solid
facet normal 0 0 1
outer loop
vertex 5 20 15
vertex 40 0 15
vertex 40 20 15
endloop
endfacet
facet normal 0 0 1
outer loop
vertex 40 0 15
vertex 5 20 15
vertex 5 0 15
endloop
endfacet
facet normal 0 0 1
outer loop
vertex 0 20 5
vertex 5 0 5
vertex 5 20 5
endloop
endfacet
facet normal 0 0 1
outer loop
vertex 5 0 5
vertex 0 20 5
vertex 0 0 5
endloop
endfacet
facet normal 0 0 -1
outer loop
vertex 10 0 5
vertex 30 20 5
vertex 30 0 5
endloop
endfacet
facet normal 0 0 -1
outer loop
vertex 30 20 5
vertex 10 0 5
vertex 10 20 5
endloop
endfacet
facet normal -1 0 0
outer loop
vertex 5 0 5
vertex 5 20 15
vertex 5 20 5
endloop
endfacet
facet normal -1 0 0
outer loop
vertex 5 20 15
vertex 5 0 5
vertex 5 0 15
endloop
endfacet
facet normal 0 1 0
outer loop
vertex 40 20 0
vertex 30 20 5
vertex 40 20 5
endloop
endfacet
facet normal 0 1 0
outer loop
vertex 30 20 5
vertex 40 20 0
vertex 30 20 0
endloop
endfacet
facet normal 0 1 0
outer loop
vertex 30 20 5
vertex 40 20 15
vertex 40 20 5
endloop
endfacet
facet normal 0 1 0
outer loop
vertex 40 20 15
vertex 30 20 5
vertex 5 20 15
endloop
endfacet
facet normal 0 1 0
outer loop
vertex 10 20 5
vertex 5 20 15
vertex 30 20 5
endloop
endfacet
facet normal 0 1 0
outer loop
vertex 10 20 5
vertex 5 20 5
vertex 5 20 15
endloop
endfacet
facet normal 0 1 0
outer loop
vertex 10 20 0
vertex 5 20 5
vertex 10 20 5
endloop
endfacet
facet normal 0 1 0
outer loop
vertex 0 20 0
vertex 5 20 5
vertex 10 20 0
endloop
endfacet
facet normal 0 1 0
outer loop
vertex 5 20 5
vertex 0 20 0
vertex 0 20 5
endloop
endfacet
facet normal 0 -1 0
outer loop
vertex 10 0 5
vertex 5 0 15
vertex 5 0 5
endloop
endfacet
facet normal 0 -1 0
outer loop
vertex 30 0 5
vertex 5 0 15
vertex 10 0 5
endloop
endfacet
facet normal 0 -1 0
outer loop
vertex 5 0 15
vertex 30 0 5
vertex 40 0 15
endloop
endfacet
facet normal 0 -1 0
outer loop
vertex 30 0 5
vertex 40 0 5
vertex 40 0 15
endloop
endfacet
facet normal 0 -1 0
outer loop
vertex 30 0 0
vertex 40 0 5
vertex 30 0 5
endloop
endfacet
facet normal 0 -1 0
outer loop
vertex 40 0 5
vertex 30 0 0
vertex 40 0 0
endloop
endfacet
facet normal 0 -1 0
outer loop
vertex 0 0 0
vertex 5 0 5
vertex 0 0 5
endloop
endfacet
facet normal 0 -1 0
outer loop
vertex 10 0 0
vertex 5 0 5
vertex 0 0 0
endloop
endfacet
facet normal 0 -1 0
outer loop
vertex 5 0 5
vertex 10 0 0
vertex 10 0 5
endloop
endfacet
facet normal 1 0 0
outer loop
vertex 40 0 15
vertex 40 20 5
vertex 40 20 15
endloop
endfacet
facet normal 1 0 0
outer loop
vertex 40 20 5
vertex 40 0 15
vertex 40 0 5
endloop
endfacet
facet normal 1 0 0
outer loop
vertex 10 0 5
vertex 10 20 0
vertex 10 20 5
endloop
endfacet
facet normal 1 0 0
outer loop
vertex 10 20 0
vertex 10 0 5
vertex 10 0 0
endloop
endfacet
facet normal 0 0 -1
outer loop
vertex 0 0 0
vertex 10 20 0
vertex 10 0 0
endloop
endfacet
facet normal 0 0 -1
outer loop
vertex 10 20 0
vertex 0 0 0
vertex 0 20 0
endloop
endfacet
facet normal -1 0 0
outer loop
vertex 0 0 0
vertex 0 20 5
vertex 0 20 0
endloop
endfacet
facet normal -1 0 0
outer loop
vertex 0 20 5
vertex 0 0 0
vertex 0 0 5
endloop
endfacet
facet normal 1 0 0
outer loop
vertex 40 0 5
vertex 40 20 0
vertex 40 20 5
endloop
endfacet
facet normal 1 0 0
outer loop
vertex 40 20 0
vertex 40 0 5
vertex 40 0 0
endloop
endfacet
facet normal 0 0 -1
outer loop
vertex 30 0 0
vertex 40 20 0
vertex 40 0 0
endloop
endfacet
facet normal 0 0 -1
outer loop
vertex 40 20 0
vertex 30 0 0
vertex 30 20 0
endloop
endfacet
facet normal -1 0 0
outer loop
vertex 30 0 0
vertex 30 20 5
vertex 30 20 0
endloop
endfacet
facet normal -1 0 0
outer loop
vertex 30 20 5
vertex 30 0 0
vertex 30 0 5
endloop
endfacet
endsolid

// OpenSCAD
// Definitions for individual components
module support_block() {
    cube([10, 20, 5]);
}

module base_block() {
    difference() {
        cube([40, 20, 10]); // Cuboid base
        translate([35, 0, 0]) {
            cube([5, 20, 10]); // Tapered subtraction for trapezoidal profile
        }
    }
}

module angled_extension() {
    polyhedron(
        points = [
            [0, 0, 0],   // Bottom-left
            [30, 0, 0],  // Bottom-right
            [30, 20, 0], // Top-right
            [0, 20, 10], // Top-left
        ],
        faces = [
            [0, 1, 2],
            [0, 2, 3],
            [1, 2, 3],
            [0, 1, 3],
        ]
    );
}

// Combining layers to create the 3D model
module flexible_coupling() {
    // Layer 1 - Support Blocks
    translate([0, 0, 0]) { support_block(); }
    translate([30, 0, 0]) { support_block(); }

    // Layer 2 - Base Block
    translate([5, 0, 5]) { base_block(); }

    // Layer 3 - Angled Extension
    translate([0, -10, 15]) { angled_extension(); }
}

// Render the 3D model
flexible_coupling();
